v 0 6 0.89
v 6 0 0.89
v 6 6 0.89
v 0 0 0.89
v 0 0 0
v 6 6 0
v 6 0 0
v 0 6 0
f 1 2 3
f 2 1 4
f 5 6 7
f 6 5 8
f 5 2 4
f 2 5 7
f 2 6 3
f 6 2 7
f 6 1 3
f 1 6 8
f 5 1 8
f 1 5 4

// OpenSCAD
/* Warning, this is a very basic generator with a lot of approximation 
input data : [VMIS, 2SW, 6x6x0.89mm, 28, , A, C04-00552A]
generated by com.zoubworld.electronics.cad.model3d.Basic
Date : Sun Feb 15 10:50:48 CET 2026
*/

//body
color("black")
translate([0,0,0])
cube([6.0,6.0,0.89], center=false);
